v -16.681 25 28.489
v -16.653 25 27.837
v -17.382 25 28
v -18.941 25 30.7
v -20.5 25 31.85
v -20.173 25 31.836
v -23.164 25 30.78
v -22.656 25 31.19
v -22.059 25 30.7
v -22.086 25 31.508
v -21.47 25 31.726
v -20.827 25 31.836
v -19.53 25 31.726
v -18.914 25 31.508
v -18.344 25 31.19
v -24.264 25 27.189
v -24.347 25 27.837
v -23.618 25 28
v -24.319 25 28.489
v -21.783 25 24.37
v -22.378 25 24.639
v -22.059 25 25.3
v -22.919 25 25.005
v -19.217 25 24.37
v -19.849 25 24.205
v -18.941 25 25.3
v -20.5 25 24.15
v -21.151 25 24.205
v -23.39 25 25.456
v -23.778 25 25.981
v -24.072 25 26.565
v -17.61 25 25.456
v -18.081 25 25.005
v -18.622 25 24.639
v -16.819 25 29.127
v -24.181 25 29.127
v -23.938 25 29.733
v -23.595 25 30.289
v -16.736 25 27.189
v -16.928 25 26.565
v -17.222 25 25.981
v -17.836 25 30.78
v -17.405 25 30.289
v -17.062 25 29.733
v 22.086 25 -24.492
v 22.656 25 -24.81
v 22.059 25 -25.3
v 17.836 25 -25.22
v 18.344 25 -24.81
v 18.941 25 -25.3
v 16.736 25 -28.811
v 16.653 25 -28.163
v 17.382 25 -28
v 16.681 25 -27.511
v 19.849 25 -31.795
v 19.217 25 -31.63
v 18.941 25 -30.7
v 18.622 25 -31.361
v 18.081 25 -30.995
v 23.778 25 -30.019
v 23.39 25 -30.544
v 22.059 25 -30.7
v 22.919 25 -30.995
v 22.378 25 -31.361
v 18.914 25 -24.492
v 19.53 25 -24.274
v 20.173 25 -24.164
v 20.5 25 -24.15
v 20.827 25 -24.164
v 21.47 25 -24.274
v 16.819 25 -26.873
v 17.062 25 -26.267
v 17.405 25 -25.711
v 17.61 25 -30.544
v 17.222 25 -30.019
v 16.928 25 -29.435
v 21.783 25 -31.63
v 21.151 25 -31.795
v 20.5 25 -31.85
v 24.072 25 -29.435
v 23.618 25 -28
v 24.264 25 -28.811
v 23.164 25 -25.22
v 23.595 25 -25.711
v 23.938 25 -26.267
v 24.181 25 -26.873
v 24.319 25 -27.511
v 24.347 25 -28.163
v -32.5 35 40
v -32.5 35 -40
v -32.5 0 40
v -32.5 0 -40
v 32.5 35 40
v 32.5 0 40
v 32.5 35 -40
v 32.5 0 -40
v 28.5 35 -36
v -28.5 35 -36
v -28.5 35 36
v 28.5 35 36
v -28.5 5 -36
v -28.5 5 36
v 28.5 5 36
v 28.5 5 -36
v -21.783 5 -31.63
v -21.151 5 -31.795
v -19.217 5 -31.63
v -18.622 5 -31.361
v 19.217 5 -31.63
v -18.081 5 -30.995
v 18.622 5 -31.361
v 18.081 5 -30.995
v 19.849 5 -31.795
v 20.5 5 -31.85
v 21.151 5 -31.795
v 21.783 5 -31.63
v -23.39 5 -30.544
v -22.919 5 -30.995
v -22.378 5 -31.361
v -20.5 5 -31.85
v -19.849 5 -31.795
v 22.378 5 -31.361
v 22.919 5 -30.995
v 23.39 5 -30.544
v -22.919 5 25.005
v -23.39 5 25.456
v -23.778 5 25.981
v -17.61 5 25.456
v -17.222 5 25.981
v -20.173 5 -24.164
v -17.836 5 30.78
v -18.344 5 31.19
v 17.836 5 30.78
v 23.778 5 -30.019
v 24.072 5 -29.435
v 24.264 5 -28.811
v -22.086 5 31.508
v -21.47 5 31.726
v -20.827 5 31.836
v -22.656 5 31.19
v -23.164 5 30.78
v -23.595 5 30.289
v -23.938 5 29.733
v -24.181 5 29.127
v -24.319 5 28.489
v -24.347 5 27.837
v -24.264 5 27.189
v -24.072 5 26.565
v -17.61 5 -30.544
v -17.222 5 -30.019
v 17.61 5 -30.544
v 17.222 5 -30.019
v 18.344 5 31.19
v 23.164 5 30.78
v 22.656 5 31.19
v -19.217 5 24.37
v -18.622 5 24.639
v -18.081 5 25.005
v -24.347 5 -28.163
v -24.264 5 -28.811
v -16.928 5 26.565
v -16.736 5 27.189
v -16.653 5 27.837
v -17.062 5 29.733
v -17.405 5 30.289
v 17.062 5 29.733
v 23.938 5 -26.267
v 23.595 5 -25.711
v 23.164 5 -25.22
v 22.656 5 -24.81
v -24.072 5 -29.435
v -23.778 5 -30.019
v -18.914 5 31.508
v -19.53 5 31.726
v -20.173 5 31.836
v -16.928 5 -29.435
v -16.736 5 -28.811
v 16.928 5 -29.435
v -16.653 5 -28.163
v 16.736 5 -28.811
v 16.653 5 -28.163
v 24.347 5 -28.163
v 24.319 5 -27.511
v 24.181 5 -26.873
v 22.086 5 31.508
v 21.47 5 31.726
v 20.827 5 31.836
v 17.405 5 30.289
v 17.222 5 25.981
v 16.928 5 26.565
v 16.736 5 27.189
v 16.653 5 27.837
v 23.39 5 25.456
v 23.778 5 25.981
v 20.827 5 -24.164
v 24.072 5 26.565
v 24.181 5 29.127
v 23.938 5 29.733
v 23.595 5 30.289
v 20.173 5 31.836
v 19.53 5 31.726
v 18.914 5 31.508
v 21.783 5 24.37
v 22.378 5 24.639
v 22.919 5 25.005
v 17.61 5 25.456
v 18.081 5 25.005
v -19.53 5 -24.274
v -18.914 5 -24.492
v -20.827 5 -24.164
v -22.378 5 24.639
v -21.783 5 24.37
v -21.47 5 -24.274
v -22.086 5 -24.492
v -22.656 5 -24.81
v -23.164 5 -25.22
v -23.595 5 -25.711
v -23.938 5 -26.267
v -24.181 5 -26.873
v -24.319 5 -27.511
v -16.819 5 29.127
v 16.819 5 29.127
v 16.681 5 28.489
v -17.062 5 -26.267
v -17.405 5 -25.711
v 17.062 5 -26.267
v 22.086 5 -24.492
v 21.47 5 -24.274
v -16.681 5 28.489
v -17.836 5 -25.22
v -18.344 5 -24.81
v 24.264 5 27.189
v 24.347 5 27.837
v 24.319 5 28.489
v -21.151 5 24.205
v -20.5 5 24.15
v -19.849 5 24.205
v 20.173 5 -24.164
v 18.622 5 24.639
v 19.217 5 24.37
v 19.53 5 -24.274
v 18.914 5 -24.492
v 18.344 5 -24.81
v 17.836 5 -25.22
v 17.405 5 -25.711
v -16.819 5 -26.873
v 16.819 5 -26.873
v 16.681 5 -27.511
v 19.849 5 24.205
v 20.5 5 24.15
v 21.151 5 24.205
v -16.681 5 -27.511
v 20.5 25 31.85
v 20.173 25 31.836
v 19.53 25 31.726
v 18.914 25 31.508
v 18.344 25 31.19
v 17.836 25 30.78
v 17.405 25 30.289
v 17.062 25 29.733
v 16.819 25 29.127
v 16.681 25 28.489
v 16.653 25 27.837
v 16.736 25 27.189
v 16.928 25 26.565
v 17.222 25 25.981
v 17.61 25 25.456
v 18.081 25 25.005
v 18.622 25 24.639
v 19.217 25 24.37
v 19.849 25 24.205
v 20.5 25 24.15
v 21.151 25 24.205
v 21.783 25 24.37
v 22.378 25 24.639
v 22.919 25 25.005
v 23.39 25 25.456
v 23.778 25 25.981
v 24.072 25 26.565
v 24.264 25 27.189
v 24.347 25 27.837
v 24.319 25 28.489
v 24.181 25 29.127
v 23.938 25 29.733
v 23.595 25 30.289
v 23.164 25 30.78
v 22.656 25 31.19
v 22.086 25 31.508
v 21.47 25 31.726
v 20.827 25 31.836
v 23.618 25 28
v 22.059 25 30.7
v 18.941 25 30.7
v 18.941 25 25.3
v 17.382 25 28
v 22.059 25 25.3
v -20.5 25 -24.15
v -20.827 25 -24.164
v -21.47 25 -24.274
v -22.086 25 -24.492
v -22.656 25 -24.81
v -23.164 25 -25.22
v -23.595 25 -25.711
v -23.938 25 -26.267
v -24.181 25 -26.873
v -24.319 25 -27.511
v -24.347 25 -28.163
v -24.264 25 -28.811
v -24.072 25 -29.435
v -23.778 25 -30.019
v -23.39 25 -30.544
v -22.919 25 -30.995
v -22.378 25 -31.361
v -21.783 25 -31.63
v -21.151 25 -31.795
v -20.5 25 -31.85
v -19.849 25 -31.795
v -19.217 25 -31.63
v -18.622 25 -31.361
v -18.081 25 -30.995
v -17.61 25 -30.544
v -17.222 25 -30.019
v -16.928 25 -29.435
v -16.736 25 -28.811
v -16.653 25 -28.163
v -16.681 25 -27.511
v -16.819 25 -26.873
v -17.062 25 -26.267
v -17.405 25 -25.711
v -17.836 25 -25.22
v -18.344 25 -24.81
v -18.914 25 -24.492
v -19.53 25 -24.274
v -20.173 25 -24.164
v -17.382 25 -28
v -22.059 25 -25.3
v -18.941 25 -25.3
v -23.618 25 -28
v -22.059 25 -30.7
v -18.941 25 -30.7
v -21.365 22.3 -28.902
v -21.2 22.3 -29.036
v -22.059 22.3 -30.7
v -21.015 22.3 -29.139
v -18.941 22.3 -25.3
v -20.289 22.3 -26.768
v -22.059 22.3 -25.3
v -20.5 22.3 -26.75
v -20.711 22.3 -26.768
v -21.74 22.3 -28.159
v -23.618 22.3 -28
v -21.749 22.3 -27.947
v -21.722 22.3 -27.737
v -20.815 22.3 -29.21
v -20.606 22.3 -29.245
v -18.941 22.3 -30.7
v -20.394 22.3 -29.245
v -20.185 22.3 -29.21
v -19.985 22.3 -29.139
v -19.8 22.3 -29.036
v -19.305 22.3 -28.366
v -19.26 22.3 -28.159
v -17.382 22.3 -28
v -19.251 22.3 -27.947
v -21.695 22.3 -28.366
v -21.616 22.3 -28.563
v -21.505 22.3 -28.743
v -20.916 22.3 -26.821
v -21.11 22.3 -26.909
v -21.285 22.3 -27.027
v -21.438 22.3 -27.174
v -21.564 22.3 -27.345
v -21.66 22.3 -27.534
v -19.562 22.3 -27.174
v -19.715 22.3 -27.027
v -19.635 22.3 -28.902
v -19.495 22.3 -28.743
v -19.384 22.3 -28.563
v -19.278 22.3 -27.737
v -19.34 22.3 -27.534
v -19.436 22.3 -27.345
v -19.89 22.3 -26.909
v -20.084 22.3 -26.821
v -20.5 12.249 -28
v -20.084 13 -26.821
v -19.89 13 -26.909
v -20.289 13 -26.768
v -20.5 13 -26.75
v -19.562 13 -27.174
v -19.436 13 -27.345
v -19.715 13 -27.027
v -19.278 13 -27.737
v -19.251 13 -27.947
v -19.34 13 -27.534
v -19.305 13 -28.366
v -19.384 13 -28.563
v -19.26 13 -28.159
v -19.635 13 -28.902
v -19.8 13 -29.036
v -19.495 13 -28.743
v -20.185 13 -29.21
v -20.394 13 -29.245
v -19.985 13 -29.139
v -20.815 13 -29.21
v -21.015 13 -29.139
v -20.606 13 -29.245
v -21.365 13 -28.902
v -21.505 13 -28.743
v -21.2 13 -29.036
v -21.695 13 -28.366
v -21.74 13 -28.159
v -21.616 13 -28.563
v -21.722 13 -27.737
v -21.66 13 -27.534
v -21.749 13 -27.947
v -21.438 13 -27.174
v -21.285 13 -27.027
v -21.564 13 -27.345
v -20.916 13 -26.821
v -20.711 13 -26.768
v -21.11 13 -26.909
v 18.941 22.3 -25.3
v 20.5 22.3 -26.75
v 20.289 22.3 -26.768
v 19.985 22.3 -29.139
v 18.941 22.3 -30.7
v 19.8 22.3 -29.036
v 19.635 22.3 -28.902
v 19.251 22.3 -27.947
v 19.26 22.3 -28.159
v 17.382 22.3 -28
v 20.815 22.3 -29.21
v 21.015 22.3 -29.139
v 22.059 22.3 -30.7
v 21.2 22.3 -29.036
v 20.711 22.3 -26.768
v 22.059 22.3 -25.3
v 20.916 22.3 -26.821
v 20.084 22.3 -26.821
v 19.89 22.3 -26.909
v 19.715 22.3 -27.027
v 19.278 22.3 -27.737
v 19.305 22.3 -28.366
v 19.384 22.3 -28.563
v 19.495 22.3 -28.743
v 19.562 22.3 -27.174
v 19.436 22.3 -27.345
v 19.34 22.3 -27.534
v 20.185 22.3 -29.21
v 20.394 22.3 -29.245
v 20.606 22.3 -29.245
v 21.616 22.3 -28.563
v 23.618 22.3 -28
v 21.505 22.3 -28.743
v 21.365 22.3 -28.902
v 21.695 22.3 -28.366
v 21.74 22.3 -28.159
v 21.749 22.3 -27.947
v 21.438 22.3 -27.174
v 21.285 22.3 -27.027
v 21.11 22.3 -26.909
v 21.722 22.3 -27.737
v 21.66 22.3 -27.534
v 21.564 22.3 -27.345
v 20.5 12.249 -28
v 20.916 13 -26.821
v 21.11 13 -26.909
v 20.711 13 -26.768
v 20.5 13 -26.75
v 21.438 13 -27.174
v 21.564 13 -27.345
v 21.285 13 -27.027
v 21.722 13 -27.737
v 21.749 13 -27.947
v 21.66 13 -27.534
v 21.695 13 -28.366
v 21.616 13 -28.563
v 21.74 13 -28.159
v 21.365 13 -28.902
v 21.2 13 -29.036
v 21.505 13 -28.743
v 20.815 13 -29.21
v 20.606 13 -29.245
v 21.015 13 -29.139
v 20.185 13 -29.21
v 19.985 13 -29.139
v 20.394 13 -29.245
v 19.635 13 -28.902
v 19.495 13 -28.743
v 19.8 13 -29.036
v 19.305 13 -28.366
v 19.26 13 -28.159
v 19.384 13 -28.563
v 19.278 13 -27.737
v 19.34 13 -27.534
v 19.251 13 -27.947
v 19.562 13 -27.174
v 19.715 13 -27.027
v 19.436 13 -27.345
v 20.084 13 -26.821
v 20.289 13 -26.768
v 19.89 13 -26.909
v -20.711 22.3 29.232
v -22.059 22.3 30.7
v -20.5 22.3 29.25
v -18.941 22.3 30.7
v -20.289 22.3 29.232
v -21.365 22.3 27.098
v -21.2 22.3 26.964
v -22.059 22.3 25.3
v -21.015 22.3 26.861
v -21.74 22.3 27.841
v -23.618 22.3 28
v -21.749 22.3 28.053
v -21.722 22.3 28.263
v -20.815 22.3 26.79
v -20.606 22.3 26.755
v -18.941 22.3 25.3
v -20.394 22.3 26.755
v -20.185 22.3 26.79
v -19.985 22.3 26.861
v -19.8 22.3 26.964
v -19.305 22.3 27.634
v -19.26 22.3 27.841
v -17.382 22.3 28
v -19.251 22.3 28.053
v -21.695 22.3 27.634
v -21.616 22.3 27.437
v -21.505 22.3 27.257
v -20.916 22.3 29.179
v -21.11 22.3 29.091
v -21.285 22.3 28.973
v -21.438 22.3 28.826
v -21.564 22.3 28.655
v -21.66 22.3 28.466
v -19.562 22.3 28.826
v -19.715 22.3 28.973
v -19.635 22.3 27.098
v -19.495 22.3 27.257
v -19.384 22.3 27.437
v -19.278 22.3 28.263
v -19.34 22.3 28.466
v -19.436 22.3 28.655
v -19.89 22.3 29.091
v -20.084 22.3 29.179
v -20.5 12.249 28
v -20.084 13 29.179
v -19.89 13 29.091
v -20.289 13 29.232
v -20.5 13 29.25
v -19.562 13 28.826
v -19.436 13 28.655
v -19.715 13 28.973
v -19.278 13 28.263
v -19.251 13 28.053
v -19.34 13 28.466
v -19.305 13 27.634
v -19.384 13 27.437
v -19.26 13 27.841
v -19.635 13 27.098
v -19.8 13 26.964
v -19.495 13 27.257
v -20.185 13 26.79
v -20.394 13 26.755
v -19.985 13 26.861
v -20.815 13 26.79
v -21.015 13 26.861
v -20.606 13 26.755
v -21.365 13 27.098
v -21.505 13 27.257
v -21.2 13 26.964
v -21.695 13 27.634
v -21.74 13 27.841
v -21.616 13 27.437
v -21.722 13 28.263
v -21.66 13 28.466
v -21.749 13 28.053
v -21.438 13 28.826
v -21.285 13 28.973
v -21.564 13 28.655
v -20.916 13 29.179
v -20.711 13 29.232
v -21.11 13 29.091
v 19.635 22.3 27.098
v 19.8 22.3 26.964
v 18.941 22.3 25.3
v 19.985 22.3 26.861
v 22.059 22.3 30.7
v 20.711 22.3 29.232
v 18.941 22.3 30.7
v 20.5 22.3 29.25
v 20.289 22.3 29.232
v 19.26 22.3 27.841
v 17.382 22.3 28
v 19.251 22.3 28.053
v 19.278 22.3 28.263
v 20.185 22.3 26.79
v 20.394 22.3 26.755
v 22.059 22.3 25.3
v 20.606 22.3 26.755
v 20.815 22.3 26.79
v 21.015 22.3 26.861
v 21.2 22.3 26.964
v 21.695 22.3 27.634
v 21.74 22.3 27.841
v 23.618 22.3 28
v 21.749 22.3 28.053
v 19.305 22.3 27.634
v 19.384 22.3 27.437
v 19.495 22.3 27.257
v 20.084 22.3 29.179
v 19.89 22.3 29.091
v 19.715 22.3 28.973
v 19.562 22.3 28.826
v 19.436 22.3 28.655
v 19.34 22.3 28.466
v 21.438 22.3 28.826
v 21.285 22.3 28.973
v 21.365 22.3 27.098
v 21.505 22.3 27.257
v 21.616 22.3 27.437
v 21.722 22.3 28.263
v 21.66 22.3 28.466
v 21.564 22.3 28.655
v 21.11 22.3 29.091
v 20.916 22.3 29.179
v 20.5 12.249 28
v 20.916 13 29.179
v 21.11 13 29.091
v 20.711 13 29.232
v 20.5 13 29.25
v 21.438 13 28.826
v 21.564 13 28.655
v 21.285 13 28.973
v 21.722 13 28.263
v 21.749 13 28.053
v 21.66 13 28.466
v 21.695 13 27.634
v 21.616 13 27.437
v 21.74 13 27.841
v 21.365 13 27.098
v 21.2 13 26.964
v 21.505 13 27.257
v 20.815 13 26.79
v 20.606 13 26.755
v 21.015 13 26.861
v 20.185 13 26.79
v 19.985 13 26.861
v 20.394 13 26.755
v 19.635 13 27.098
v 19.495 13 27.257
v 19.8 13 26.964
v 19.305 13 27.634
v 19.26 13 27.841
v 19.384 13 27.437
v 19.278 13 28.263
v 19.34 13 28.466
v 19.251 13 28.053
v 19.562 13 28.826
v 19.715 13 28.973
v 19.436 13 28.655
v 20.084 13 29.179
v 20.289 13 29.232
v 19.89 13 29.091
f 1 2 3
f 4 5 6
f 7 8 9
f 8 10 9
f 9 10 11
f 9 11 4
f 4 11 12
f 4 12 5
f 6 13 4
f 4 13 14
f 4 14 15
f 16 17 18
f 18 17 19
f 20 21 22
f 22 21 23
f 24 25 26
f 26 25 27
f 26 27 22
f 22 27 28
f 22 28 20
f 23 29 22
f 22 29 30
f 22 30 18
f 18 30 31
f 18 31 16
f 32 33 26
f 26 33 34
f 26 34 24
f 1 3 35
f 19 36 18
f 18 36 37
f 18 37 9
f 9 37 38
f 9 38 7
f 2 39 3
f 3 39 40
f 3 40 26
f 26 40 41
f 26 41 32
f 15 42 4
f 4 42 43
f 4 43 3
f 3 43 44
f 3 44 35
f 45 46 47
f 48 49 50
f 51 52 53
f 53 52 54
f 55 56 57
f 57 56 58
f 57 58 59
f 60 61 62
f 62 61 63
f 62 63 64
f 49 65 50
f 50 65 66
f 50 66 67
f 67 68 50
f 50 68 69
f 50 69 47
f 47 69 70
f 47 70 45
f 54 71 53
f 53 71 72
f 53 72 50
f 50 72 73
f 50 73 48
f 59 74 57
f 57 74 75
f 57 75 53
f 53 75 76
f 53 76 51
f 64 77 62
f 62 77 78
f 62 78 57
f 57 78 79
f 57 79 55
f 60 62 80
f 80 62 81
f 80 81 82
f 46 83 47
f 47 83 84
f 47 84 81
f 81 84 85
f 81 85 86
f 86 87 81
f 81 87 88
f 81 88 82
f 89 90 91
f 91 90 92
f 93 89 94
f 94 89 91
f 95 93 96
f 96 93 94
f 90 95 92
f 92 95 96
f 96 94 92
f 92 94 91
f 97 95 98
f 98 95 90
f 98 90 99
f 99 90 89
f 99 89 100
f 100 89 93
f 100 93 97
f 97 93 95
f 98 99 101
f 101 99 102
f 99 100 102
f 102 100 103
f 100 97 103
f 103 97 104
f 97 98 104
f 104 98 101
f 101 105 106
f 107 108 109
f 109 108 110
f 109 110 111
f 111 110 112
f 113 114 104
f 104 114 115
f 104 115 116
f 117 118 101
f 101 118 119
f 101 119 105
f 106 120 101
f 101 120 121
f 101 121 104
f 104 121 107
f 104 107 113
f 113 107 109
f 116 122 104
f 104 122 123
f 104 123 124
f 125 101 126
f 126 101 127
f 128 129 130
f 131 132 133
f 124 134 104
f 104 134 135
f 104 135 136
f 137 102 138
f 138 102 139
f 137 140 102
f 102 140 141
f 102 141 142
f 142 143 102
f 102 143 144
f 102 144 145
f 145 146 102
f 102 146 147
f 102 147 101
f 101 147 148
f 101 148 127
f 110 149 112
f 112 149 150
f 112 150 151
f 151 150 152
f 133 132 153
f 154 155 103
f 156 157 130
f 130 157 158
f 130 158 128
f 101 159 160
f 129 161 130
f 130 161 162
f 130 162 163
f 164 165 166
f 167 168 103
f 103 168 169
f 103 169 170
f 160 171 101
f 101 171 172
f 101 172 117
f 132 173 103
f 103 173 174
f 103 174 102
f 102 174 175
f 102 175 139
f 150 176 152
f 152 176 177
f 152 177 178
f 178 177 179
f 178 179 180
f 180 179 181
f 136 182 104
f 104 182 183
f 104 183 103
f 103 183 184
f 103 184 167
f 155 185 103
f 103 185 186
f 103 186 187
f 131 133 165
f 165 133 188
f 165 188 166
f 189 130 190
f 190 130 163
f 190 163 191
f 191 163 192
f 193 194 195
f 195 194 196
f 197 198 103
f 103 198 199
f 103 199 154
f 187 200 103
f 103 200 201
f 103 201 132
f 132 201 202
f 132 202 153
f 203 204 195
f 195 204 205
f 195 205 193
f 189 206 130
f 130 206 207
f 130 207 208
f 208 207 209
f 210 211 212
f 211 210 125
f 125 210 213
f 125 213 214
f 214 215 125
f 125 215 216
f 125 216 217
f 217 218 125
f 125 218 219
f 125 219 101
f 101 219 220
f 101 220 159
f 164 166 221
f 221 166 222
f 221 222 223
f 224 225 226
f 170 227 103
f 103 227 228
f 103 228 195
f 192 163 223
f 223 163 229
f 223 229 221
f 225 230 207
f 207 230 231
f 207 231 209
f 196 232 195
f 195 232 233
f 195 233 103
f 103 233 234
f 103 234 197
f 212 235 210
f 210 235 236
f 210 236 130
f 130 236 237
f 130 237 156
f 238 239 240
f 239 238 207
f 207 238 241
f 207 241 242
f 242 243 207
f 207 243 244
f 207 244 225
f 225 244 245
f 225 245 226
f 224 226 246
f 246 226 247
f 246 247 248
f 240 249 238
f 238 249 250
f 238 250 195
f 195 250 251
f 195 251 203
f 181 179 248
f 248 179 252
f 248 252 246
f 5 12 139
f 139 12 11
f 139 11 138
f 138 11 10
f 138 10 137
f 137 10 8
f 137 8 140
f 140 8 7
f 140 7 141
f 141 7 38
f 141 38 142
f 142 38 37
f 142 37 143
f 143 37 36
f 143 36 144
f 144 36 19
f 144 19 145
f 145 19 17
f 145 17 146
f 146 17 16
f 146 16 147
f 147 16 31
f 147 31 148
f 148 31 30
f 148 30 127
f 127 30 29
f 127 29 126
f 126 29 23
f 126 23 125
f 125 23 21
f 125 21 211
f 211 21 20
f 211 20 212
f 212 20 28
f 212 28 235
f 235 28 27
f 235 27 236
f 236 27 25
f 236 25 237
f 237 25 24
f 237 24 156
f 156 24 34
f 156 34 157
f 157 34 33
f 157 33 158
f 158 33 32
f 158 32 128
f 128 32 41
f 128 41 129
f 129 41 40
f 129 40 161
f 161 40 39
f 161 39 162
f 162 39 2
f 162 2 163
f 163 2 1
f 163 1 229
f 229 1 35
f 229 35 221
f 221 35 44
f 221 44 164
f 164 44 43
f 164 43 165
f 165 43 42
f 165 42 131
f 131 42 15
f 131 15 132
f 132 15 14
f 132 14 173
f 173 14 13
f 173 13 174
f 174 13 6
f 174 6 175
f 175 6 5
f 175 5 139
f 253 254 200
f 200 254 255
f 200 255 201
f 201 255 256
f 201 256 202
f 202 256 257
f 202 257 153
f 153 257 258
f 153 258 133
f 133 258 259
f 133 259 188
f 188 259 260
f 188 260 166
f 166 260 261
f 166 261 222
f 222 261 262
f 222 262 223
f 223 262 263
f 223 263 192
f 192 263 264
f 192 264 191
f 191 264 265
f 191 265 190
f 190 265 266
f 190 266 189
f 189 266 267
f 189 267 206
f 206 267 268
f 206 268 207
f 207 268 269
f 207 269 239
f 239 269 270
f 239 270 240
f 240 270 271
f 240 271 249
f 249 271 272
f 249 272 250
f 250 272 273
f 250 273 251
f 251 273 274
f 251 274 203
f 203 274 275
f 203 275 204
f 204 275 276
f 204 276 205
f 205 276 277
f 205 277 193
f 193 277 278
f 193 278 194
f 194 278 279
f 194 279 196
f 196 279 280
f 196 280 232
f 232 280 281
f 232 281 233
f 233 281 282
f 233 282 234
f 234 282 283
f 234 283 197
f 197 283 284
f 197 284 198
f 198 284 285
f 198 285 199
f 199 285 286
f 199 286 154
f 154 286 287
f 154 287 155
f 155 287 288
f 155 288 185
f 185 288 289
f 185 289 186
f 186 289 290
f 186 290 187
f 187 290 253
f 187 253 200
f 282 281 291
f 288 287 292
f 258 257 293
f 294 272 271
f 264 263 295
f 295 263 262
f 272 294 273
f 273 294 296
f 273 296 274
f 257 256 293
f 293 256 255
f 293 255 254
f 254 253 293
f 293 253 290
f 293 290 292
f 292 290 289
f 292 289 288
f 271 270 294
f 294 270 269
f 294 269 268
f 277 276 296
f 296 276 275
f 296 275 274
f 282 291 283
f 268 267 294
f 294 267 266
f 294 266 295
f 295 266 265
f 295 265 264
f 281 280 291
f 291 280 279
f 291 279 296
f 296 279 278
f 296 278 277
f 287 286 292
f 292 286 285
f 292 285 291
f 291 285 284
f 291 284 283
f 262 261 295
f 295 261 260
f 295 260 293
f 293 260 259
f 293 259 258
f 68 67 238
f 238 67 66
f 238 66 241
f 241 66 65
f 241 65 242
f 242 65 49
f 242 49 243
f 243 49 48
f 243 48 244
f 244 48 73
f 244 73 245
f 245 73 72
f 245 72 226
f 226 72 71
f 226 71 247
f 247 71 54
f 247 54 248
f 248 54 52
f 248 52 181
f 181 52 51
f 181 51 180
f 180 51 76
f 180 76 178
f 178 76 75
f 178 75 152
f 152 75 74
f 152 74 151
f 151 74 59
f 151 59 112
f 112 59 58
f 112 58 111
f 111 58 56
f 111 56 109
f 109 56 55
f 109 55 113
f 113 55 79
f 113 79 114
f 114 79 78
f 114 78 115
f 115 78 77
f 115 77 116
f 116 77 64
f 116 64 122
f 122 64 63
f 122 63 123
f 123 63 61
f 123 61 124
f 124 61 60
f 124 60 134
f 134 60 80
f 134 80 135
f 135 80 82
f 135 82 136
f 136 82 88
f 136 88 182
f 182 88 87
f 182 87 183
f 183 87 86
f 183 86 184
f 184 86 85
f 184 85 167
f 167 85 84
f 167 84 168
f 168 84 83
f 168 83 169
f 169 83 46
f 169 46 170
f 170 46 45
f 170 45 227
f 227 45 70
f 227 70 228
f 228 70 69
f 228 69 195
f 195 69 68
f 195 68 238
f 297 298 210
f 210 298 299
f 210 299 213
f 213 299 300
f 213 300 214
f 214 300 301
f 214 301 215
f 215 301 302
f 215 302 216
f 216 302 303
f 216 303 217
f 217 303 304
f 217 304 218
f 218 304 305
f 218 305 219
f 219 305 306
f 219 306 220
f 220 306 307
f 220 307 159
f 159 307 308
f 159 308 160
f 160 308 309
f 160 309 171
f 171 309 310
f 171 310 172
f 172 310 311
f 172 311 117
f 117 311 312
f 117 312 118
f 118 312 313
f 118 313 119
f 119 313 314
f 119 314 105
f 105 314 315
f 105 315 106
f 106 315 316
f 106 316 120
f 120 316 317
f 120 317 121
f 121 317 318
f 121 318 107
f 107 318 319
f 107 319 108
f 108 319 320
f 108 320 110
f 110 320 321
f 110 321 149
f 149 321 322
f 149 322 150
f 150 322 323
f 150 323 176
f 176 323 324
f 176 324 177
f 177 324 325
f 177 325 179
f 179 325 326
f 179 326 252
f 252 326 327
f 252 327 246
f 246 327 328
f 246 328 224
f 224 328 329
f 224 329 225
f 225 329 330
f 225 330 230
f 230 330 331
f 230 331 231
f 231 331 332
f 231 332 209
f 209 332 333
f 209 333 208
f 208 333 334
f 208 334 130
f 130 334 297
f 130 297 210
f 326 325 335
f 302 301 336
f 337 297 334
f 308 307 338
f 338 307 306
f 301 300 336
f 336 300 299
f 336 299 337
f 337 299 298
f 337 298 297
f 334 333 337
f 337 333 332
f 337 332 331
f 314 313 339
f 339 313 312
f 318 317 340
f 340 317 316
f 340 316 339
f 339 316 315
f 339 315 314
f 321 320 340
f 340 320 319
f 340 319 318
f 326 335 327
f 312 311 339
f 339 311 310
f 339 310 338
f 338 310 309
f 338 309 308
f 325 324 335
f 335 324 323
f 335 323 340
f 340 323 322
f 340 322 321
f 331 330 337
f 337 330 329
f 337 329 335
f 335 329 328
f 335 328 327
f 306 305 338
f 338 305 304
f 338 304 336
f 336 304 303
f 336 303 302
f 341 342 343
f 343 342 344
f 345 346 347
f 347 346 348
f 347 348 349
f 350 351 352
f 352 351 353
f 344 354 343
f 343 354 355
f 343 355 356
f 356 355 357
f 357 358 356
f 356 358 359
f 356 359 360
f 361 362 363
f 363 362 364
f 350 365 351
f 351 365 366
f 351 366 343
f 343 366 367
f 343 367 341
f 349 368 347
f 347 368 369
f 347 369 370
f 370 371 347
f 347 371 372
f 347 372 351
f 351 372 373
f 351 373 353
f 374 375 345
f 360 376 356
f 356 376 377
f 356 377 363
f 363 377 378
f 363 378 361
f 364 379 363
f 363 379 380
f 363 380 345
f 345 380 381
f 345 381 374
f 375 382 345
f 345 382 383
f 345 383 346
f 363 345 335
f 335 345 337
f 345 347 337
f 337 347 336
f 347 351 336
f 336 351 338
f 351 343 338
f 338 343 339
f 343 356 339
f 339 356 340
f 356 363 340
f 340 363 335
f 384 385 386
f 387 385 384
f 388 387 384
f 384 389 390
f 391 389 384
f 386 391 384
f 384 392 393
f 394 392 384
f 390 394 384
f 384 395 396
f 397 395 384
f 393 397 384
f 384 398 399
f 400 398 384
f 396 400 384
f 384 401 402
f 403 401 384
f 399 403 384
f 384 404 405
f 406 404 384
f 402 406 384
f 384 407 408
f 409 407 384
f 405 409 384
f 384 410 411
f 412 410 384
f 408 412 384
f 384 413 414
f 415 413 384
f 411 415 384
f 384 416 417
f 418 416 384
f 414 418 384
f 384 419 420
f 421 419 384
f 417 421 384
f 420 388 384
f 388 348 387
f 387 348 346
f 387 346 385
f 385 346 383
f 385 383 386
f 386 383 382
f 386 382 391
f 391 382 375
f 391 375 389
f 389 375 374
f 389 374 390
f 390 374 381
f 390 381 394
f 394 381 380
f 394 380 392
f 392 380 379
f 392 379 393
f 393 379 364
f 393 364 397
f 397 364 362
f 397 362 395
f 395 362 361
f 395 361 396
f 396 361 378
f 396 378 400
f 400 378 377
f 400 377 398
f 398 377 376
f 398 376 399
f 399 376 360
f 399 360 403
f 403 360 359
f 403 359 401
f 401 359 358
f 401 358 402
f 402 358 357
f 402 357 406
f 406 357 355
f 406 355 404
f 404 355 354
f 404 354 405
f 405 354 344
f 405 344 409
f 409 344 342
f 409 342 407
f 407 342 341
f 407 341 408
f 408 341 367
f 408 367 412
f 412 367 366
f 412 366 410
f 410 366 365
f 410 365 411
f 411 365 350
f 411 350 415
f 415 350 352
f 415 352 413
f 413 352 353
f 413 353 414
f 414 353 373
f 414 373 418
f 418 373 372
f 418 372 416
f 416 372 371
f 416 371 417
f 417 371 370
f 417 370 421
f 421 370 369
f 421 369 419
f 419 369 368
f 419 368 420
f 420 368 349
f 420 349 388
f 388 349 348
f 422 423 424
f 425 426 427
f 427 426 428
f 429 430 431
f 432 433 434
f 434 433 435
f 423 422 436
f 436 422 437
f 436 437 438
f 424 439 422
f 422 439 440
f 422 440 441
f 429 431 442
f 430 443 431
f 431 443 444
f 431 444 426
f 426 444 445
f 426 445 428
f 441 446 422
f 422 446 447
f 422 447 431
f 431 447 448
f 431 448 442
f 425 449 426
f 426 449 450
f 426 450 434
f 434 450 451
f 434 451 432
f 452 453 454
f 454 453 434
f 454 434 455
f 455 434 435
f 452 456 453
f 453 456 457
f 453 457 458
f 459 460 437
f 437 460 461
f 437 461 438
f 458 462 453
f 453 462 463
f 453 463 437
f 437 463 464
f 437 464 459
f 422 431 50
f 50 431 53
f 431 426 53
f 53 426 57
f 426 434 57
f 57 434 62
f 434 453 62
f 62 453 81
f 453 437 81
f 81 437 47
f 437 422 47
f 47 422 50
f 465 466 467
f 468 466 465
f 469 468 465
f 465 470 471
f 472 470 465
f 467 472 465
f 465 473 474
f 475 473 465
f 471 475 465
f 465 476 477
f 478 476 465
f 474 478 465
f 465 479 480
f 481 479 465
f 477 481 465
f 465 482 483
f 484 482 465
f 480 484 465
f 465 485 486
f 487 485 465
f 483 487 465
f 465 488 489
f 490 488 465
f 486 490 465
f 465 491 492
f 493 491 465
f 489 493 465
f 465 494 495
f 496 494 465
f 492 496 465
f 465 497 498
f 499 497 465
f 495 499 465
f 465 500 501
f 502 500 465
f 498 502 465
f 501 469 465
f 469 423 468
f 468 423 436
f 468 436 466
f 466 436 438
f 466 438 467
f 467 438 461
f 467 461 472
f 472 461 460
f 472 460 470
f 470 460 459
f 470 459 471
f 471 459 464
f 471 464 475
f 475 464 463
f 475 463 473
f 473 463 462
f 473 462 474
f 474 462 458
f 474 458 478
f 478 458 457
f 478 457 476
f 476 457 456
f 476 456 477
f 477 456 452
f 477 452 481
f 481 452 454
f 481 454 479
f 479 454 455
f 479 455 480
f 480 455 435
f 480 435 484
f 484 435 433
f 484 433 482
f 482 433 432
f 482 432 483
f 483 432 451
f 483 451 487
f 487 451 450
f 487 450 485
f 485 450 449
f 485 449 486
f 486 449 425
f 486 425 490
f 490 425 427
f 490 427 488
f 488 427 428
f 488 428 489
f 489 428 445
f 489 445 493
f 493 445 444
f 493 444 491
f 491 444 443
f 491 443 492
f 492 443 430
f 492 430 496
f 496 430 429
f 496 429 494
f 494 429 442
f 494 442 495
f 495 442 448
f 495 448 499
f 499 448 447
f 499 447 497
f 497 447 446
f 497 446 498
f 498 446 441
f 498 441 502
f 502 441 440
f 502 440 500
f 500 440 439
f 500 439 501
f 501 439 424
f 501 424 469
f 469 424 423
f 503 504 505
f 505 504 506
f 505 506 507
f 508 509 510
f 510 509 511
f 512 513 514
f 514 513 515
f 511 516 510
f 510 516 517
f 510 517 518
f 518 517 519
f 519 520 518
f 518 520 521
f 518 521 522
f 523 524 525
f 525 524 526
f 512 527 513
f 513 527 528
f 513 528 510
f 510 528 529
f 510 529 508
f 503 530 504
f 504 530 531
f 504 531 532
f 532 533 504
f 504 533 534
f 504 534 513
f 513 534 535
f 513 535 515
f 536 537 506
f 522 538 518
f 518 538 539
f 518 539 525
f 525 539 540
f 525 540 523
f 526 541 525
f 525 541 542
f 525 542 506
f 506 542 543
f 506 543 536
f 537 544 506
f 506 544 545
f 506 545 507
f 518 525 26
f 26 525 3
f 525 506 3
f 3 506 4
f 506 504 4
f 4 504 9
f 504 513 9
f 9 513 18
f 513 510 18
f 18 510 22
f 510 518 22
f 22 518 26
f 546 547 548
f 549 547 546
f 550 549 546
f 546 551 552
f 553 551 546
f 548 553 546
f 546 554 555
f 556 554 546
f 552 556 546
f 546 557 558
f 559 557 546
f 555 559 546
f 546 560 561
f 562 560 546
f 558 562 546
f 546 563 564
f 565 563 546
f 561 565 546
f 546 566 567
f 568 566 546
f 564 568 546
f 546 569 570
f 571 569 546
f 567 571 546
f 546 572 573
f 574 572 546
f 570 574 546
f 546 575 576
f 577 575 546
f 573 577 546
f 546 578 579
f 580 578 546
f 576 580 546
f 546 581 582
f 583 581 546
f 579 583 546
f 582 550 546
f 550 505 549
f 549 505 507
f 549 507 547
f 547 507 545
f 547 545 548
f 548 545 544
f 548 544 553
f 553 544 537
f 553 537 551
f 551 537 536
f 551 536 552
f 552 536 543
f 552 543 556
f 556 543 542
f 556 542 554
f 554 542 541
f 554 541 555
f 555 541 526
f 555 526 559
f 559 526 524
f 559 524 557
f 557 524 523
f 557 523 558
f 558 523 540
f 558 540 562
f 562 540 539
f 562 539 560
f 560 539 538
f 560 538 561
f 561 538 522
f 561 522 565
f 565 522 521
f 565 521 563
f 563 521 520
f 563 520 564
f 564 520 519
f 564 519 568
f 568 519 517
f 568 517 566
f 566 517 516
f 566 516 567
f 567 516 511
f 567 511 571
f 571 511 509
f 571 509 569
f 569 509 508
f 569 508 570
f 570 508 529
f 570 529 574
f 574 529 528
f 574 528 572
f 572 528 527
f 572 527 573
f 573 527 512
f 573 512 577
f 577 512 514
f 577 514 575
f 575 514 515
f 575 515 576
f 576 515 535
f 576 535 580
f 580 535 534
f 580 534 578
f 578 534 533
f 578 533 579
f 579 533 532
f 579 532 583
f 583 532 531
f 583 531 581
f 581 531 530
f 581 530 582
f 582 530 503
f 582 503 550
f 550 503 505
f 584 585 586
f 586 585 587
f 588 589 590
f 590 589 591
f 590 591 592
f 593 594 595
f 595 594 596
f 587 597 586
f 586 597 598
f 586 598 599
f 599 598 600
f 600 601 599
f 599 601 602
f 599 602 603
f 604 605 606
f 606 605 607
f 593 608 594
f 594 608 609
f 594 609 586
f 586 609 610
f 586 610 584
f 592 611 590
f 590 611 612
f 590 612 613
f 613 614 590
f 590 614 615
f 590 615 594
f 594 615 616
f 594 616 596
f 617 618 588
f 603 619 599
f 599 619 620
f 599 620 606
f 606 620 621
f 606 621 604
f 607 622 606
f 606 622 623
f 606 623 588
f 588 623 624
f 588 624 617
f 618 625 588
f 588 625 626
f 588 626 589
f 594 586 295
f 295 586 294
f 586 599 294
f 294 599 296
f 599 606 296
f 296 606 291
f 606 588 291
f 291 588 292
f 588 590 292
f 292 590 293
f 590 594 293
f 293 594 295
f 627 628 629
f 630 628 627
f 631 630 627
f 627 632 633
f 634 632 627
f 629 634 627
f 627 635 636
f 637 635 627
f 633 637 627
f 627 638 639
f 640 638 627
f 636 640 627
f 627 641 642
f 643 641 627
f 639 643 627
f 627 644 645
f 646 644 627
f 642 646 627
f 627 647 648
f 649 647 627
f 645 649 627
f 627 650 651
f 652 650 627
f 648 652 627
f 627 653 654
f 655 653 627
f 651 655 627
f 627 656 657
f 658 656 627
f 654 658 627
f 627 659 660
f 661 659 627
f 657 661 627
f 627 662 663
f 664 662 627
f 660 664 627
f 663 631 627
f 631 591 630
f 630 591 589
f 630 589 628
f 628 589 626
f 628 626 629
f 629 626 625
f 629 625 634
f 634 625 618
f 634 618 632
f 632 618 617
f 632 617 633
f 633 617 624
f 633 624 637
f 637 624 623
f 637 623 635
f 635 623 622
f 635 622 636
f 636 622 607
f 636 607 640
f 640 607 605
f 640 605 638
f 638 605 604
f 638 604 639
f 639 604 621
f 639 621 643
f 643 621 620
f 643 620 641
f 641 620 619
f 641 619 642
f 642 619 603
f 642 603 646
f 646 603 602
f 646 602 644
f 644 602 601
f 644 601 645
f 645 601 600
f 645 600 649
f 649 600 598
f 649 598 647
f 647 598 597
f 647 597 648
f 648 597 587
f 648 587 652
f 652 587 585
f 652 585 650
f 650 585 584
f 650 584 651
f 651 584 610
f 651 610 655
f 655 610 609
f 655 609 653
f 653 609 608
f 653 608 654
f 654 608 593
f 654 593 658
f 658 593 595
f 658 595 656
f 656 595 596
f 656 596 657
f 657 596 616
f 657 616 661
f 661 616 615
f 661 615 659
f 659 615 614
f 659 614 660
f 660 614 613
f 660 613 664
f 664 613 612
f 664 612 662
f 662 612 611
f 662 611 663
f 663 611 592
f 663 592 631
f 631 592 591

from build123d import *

# Parameters (mm, degrees)
SKETCH1_W                                = 65
SKETCH1_H                                = 80
BOSS_EXTRUDE1_DEPTH                      = 5
SKETCH2_W                                = 65
SKETCH2_H                                = 80
SKETCH2_W_2                              = 57
SKETCH2_H_2                              = 72
BOSS_EXTRUDE2_DEPTH                      = 30
SKETCH3_R                                = 3.85
BOSS_EXTRUDE3_DEPTH                      = 20
TAP_DRILL_FOR_M3_TAP1_D                  = 2.5
TAP_DRILL_FOR_M3_TAP1_DEPTH              = 12
TAP_DRILL_FOR_M3_TAP1_TIP                = 0.751075774
CUT_EXTRUDE1_DEPTH                       = 2.7
MIRROR1_AT_THE_SECOND_PLANE_COPY_1_DEPTH = 2.7


with BuildPart() as part:
    # Sketch1 → Boss-Extrude1 (new body)
    with BuildSketch(Plane(origin=(0, 0, 0), x_dir=(1, 0, 0), z_dir=(0, 1, 0))):
        Rectangle(SKETCH1_W, SKETCH1_H)
    extrude(amount=BOSS_EXTRUDE1_DEPTH)

    # Sketch2 → Boss-Extrude2 (add)
    with BuildSketch(Plane(origin=(0, 5, 0), x_dir=(1, 0, 0), z_dir=(0, 1, 0))):
        Rectangle(SKETCH2_W, SKETCH2_H)
        Rectangle(SKETCH2_W_2, SKETCH2_H_2, mode=Mode.SUBTRACT)
    extrude(amount=BOSS_EXTRUDE2_DEPTH)

    # Sketch3 → Boss-Extrude3 (add)
    with BuildSketch(Plane(origin=(0, 5, 0), x_dir=(1, 0, 0), z_dir=(0, 1, 0))):
        with Locations(Location((-20.5, -28, 0), (0, 0, 90))):
            Circle(SKETCH3_R)
        with Locations(Location((20.5, -28, 0), (0, 0, 90))):
            Circle(SKETCH3_R)
        with Locations(Location((20.5, 28, 0), (0, 0, 90))):
            Circle(SKETCH3_R)
        with Locations(Location((-20.5, 28, 0), (0, 0, 90))):
            Circle(SKETCH3_R)
    extrude(amount=BOSS_EXTRUDE3_DEPTH)

    # Tap Drill for M3 Tap1
    with Locations(Plane(origin=(0, 25, 0), x_dir=(1, 0, 0), z_dir=(0, 1, 0))):
        with Locations((-20.5, 28), (20.5, 28), (20.5, -28), (-20.5, -28)):
            Hole(TAP_DRILL_FOR_M3_TAP1_D / 2, depth=TAP_DRILL_FOR_M3_TAP1_DEPTH)
            with Locations((0, 0, -(TAP_DRILL_FOR_M3_TAP1_DEPTH + TAP_DRILL_FOR_M3_TAP1_TIP / 2))):  # 118° drill point
                Cone(0, TAP_DRILL_FOR_M3_TAP1_D / 2, TAP_DRILL_FOR_M3_TAP1_TIP, mode=Mode.SUBTRACT)

    # Sketch8 → Cut-Extrude1 (cut)
    with BuildSketch(Plane(origin=(0, 25, 0), x_dir=(1, 0, 0), z_dir=(0, 1, 0))):
        Polygon((-17.382308546, 28), (-18.941154273, 30.7), (-22.058845727, 30.7), (-23.617691454, 28), (-22.058845727, 25.3), (-18.941154273, 25.3), align=None)
    cut_extrude1 = extrude(amount=-CUT_EXTRUDE1_DEPTH, mode=Mode.SUBTRACT)

    # Mirror1: Cut-Extrude1 across plane
    add(cut_extrude1.mirror(Plane.XY), mode=Mode.SUBTRACT)

    # Mirror1 at the second plane: Cut-Extrude1 across plane
    add(cut_extrude1.mirror(Plane(origin=(0, 0, 0), x_dir=(0, 0, 1), z_dir=(1, 0, 0))), mode=Mode.SUBTRACT)

    # Mirror1 at the second plane copy 1 sketc → Mirror1 at the second plane copy 1 (cut)
    with BuildSketch(Plane(origin=(0, 25, 0), x_dir=(-1, 0, 0), z_dir=(0, 1, 0))):
        Polygon((-17.382308546, 28), (-18.941154273, 30.7), (-22.058845727, 30.7), (-23.617691454, 28), (-22.058845727, 25.3), (-18.941154273, 25.3), align=None)
    extrude(amount=-MIRROR1_AT_THE_SECOND_PLANE_COPY_1_DEPTH, mode=Mode.SUBTRACT)


solid = part.part
